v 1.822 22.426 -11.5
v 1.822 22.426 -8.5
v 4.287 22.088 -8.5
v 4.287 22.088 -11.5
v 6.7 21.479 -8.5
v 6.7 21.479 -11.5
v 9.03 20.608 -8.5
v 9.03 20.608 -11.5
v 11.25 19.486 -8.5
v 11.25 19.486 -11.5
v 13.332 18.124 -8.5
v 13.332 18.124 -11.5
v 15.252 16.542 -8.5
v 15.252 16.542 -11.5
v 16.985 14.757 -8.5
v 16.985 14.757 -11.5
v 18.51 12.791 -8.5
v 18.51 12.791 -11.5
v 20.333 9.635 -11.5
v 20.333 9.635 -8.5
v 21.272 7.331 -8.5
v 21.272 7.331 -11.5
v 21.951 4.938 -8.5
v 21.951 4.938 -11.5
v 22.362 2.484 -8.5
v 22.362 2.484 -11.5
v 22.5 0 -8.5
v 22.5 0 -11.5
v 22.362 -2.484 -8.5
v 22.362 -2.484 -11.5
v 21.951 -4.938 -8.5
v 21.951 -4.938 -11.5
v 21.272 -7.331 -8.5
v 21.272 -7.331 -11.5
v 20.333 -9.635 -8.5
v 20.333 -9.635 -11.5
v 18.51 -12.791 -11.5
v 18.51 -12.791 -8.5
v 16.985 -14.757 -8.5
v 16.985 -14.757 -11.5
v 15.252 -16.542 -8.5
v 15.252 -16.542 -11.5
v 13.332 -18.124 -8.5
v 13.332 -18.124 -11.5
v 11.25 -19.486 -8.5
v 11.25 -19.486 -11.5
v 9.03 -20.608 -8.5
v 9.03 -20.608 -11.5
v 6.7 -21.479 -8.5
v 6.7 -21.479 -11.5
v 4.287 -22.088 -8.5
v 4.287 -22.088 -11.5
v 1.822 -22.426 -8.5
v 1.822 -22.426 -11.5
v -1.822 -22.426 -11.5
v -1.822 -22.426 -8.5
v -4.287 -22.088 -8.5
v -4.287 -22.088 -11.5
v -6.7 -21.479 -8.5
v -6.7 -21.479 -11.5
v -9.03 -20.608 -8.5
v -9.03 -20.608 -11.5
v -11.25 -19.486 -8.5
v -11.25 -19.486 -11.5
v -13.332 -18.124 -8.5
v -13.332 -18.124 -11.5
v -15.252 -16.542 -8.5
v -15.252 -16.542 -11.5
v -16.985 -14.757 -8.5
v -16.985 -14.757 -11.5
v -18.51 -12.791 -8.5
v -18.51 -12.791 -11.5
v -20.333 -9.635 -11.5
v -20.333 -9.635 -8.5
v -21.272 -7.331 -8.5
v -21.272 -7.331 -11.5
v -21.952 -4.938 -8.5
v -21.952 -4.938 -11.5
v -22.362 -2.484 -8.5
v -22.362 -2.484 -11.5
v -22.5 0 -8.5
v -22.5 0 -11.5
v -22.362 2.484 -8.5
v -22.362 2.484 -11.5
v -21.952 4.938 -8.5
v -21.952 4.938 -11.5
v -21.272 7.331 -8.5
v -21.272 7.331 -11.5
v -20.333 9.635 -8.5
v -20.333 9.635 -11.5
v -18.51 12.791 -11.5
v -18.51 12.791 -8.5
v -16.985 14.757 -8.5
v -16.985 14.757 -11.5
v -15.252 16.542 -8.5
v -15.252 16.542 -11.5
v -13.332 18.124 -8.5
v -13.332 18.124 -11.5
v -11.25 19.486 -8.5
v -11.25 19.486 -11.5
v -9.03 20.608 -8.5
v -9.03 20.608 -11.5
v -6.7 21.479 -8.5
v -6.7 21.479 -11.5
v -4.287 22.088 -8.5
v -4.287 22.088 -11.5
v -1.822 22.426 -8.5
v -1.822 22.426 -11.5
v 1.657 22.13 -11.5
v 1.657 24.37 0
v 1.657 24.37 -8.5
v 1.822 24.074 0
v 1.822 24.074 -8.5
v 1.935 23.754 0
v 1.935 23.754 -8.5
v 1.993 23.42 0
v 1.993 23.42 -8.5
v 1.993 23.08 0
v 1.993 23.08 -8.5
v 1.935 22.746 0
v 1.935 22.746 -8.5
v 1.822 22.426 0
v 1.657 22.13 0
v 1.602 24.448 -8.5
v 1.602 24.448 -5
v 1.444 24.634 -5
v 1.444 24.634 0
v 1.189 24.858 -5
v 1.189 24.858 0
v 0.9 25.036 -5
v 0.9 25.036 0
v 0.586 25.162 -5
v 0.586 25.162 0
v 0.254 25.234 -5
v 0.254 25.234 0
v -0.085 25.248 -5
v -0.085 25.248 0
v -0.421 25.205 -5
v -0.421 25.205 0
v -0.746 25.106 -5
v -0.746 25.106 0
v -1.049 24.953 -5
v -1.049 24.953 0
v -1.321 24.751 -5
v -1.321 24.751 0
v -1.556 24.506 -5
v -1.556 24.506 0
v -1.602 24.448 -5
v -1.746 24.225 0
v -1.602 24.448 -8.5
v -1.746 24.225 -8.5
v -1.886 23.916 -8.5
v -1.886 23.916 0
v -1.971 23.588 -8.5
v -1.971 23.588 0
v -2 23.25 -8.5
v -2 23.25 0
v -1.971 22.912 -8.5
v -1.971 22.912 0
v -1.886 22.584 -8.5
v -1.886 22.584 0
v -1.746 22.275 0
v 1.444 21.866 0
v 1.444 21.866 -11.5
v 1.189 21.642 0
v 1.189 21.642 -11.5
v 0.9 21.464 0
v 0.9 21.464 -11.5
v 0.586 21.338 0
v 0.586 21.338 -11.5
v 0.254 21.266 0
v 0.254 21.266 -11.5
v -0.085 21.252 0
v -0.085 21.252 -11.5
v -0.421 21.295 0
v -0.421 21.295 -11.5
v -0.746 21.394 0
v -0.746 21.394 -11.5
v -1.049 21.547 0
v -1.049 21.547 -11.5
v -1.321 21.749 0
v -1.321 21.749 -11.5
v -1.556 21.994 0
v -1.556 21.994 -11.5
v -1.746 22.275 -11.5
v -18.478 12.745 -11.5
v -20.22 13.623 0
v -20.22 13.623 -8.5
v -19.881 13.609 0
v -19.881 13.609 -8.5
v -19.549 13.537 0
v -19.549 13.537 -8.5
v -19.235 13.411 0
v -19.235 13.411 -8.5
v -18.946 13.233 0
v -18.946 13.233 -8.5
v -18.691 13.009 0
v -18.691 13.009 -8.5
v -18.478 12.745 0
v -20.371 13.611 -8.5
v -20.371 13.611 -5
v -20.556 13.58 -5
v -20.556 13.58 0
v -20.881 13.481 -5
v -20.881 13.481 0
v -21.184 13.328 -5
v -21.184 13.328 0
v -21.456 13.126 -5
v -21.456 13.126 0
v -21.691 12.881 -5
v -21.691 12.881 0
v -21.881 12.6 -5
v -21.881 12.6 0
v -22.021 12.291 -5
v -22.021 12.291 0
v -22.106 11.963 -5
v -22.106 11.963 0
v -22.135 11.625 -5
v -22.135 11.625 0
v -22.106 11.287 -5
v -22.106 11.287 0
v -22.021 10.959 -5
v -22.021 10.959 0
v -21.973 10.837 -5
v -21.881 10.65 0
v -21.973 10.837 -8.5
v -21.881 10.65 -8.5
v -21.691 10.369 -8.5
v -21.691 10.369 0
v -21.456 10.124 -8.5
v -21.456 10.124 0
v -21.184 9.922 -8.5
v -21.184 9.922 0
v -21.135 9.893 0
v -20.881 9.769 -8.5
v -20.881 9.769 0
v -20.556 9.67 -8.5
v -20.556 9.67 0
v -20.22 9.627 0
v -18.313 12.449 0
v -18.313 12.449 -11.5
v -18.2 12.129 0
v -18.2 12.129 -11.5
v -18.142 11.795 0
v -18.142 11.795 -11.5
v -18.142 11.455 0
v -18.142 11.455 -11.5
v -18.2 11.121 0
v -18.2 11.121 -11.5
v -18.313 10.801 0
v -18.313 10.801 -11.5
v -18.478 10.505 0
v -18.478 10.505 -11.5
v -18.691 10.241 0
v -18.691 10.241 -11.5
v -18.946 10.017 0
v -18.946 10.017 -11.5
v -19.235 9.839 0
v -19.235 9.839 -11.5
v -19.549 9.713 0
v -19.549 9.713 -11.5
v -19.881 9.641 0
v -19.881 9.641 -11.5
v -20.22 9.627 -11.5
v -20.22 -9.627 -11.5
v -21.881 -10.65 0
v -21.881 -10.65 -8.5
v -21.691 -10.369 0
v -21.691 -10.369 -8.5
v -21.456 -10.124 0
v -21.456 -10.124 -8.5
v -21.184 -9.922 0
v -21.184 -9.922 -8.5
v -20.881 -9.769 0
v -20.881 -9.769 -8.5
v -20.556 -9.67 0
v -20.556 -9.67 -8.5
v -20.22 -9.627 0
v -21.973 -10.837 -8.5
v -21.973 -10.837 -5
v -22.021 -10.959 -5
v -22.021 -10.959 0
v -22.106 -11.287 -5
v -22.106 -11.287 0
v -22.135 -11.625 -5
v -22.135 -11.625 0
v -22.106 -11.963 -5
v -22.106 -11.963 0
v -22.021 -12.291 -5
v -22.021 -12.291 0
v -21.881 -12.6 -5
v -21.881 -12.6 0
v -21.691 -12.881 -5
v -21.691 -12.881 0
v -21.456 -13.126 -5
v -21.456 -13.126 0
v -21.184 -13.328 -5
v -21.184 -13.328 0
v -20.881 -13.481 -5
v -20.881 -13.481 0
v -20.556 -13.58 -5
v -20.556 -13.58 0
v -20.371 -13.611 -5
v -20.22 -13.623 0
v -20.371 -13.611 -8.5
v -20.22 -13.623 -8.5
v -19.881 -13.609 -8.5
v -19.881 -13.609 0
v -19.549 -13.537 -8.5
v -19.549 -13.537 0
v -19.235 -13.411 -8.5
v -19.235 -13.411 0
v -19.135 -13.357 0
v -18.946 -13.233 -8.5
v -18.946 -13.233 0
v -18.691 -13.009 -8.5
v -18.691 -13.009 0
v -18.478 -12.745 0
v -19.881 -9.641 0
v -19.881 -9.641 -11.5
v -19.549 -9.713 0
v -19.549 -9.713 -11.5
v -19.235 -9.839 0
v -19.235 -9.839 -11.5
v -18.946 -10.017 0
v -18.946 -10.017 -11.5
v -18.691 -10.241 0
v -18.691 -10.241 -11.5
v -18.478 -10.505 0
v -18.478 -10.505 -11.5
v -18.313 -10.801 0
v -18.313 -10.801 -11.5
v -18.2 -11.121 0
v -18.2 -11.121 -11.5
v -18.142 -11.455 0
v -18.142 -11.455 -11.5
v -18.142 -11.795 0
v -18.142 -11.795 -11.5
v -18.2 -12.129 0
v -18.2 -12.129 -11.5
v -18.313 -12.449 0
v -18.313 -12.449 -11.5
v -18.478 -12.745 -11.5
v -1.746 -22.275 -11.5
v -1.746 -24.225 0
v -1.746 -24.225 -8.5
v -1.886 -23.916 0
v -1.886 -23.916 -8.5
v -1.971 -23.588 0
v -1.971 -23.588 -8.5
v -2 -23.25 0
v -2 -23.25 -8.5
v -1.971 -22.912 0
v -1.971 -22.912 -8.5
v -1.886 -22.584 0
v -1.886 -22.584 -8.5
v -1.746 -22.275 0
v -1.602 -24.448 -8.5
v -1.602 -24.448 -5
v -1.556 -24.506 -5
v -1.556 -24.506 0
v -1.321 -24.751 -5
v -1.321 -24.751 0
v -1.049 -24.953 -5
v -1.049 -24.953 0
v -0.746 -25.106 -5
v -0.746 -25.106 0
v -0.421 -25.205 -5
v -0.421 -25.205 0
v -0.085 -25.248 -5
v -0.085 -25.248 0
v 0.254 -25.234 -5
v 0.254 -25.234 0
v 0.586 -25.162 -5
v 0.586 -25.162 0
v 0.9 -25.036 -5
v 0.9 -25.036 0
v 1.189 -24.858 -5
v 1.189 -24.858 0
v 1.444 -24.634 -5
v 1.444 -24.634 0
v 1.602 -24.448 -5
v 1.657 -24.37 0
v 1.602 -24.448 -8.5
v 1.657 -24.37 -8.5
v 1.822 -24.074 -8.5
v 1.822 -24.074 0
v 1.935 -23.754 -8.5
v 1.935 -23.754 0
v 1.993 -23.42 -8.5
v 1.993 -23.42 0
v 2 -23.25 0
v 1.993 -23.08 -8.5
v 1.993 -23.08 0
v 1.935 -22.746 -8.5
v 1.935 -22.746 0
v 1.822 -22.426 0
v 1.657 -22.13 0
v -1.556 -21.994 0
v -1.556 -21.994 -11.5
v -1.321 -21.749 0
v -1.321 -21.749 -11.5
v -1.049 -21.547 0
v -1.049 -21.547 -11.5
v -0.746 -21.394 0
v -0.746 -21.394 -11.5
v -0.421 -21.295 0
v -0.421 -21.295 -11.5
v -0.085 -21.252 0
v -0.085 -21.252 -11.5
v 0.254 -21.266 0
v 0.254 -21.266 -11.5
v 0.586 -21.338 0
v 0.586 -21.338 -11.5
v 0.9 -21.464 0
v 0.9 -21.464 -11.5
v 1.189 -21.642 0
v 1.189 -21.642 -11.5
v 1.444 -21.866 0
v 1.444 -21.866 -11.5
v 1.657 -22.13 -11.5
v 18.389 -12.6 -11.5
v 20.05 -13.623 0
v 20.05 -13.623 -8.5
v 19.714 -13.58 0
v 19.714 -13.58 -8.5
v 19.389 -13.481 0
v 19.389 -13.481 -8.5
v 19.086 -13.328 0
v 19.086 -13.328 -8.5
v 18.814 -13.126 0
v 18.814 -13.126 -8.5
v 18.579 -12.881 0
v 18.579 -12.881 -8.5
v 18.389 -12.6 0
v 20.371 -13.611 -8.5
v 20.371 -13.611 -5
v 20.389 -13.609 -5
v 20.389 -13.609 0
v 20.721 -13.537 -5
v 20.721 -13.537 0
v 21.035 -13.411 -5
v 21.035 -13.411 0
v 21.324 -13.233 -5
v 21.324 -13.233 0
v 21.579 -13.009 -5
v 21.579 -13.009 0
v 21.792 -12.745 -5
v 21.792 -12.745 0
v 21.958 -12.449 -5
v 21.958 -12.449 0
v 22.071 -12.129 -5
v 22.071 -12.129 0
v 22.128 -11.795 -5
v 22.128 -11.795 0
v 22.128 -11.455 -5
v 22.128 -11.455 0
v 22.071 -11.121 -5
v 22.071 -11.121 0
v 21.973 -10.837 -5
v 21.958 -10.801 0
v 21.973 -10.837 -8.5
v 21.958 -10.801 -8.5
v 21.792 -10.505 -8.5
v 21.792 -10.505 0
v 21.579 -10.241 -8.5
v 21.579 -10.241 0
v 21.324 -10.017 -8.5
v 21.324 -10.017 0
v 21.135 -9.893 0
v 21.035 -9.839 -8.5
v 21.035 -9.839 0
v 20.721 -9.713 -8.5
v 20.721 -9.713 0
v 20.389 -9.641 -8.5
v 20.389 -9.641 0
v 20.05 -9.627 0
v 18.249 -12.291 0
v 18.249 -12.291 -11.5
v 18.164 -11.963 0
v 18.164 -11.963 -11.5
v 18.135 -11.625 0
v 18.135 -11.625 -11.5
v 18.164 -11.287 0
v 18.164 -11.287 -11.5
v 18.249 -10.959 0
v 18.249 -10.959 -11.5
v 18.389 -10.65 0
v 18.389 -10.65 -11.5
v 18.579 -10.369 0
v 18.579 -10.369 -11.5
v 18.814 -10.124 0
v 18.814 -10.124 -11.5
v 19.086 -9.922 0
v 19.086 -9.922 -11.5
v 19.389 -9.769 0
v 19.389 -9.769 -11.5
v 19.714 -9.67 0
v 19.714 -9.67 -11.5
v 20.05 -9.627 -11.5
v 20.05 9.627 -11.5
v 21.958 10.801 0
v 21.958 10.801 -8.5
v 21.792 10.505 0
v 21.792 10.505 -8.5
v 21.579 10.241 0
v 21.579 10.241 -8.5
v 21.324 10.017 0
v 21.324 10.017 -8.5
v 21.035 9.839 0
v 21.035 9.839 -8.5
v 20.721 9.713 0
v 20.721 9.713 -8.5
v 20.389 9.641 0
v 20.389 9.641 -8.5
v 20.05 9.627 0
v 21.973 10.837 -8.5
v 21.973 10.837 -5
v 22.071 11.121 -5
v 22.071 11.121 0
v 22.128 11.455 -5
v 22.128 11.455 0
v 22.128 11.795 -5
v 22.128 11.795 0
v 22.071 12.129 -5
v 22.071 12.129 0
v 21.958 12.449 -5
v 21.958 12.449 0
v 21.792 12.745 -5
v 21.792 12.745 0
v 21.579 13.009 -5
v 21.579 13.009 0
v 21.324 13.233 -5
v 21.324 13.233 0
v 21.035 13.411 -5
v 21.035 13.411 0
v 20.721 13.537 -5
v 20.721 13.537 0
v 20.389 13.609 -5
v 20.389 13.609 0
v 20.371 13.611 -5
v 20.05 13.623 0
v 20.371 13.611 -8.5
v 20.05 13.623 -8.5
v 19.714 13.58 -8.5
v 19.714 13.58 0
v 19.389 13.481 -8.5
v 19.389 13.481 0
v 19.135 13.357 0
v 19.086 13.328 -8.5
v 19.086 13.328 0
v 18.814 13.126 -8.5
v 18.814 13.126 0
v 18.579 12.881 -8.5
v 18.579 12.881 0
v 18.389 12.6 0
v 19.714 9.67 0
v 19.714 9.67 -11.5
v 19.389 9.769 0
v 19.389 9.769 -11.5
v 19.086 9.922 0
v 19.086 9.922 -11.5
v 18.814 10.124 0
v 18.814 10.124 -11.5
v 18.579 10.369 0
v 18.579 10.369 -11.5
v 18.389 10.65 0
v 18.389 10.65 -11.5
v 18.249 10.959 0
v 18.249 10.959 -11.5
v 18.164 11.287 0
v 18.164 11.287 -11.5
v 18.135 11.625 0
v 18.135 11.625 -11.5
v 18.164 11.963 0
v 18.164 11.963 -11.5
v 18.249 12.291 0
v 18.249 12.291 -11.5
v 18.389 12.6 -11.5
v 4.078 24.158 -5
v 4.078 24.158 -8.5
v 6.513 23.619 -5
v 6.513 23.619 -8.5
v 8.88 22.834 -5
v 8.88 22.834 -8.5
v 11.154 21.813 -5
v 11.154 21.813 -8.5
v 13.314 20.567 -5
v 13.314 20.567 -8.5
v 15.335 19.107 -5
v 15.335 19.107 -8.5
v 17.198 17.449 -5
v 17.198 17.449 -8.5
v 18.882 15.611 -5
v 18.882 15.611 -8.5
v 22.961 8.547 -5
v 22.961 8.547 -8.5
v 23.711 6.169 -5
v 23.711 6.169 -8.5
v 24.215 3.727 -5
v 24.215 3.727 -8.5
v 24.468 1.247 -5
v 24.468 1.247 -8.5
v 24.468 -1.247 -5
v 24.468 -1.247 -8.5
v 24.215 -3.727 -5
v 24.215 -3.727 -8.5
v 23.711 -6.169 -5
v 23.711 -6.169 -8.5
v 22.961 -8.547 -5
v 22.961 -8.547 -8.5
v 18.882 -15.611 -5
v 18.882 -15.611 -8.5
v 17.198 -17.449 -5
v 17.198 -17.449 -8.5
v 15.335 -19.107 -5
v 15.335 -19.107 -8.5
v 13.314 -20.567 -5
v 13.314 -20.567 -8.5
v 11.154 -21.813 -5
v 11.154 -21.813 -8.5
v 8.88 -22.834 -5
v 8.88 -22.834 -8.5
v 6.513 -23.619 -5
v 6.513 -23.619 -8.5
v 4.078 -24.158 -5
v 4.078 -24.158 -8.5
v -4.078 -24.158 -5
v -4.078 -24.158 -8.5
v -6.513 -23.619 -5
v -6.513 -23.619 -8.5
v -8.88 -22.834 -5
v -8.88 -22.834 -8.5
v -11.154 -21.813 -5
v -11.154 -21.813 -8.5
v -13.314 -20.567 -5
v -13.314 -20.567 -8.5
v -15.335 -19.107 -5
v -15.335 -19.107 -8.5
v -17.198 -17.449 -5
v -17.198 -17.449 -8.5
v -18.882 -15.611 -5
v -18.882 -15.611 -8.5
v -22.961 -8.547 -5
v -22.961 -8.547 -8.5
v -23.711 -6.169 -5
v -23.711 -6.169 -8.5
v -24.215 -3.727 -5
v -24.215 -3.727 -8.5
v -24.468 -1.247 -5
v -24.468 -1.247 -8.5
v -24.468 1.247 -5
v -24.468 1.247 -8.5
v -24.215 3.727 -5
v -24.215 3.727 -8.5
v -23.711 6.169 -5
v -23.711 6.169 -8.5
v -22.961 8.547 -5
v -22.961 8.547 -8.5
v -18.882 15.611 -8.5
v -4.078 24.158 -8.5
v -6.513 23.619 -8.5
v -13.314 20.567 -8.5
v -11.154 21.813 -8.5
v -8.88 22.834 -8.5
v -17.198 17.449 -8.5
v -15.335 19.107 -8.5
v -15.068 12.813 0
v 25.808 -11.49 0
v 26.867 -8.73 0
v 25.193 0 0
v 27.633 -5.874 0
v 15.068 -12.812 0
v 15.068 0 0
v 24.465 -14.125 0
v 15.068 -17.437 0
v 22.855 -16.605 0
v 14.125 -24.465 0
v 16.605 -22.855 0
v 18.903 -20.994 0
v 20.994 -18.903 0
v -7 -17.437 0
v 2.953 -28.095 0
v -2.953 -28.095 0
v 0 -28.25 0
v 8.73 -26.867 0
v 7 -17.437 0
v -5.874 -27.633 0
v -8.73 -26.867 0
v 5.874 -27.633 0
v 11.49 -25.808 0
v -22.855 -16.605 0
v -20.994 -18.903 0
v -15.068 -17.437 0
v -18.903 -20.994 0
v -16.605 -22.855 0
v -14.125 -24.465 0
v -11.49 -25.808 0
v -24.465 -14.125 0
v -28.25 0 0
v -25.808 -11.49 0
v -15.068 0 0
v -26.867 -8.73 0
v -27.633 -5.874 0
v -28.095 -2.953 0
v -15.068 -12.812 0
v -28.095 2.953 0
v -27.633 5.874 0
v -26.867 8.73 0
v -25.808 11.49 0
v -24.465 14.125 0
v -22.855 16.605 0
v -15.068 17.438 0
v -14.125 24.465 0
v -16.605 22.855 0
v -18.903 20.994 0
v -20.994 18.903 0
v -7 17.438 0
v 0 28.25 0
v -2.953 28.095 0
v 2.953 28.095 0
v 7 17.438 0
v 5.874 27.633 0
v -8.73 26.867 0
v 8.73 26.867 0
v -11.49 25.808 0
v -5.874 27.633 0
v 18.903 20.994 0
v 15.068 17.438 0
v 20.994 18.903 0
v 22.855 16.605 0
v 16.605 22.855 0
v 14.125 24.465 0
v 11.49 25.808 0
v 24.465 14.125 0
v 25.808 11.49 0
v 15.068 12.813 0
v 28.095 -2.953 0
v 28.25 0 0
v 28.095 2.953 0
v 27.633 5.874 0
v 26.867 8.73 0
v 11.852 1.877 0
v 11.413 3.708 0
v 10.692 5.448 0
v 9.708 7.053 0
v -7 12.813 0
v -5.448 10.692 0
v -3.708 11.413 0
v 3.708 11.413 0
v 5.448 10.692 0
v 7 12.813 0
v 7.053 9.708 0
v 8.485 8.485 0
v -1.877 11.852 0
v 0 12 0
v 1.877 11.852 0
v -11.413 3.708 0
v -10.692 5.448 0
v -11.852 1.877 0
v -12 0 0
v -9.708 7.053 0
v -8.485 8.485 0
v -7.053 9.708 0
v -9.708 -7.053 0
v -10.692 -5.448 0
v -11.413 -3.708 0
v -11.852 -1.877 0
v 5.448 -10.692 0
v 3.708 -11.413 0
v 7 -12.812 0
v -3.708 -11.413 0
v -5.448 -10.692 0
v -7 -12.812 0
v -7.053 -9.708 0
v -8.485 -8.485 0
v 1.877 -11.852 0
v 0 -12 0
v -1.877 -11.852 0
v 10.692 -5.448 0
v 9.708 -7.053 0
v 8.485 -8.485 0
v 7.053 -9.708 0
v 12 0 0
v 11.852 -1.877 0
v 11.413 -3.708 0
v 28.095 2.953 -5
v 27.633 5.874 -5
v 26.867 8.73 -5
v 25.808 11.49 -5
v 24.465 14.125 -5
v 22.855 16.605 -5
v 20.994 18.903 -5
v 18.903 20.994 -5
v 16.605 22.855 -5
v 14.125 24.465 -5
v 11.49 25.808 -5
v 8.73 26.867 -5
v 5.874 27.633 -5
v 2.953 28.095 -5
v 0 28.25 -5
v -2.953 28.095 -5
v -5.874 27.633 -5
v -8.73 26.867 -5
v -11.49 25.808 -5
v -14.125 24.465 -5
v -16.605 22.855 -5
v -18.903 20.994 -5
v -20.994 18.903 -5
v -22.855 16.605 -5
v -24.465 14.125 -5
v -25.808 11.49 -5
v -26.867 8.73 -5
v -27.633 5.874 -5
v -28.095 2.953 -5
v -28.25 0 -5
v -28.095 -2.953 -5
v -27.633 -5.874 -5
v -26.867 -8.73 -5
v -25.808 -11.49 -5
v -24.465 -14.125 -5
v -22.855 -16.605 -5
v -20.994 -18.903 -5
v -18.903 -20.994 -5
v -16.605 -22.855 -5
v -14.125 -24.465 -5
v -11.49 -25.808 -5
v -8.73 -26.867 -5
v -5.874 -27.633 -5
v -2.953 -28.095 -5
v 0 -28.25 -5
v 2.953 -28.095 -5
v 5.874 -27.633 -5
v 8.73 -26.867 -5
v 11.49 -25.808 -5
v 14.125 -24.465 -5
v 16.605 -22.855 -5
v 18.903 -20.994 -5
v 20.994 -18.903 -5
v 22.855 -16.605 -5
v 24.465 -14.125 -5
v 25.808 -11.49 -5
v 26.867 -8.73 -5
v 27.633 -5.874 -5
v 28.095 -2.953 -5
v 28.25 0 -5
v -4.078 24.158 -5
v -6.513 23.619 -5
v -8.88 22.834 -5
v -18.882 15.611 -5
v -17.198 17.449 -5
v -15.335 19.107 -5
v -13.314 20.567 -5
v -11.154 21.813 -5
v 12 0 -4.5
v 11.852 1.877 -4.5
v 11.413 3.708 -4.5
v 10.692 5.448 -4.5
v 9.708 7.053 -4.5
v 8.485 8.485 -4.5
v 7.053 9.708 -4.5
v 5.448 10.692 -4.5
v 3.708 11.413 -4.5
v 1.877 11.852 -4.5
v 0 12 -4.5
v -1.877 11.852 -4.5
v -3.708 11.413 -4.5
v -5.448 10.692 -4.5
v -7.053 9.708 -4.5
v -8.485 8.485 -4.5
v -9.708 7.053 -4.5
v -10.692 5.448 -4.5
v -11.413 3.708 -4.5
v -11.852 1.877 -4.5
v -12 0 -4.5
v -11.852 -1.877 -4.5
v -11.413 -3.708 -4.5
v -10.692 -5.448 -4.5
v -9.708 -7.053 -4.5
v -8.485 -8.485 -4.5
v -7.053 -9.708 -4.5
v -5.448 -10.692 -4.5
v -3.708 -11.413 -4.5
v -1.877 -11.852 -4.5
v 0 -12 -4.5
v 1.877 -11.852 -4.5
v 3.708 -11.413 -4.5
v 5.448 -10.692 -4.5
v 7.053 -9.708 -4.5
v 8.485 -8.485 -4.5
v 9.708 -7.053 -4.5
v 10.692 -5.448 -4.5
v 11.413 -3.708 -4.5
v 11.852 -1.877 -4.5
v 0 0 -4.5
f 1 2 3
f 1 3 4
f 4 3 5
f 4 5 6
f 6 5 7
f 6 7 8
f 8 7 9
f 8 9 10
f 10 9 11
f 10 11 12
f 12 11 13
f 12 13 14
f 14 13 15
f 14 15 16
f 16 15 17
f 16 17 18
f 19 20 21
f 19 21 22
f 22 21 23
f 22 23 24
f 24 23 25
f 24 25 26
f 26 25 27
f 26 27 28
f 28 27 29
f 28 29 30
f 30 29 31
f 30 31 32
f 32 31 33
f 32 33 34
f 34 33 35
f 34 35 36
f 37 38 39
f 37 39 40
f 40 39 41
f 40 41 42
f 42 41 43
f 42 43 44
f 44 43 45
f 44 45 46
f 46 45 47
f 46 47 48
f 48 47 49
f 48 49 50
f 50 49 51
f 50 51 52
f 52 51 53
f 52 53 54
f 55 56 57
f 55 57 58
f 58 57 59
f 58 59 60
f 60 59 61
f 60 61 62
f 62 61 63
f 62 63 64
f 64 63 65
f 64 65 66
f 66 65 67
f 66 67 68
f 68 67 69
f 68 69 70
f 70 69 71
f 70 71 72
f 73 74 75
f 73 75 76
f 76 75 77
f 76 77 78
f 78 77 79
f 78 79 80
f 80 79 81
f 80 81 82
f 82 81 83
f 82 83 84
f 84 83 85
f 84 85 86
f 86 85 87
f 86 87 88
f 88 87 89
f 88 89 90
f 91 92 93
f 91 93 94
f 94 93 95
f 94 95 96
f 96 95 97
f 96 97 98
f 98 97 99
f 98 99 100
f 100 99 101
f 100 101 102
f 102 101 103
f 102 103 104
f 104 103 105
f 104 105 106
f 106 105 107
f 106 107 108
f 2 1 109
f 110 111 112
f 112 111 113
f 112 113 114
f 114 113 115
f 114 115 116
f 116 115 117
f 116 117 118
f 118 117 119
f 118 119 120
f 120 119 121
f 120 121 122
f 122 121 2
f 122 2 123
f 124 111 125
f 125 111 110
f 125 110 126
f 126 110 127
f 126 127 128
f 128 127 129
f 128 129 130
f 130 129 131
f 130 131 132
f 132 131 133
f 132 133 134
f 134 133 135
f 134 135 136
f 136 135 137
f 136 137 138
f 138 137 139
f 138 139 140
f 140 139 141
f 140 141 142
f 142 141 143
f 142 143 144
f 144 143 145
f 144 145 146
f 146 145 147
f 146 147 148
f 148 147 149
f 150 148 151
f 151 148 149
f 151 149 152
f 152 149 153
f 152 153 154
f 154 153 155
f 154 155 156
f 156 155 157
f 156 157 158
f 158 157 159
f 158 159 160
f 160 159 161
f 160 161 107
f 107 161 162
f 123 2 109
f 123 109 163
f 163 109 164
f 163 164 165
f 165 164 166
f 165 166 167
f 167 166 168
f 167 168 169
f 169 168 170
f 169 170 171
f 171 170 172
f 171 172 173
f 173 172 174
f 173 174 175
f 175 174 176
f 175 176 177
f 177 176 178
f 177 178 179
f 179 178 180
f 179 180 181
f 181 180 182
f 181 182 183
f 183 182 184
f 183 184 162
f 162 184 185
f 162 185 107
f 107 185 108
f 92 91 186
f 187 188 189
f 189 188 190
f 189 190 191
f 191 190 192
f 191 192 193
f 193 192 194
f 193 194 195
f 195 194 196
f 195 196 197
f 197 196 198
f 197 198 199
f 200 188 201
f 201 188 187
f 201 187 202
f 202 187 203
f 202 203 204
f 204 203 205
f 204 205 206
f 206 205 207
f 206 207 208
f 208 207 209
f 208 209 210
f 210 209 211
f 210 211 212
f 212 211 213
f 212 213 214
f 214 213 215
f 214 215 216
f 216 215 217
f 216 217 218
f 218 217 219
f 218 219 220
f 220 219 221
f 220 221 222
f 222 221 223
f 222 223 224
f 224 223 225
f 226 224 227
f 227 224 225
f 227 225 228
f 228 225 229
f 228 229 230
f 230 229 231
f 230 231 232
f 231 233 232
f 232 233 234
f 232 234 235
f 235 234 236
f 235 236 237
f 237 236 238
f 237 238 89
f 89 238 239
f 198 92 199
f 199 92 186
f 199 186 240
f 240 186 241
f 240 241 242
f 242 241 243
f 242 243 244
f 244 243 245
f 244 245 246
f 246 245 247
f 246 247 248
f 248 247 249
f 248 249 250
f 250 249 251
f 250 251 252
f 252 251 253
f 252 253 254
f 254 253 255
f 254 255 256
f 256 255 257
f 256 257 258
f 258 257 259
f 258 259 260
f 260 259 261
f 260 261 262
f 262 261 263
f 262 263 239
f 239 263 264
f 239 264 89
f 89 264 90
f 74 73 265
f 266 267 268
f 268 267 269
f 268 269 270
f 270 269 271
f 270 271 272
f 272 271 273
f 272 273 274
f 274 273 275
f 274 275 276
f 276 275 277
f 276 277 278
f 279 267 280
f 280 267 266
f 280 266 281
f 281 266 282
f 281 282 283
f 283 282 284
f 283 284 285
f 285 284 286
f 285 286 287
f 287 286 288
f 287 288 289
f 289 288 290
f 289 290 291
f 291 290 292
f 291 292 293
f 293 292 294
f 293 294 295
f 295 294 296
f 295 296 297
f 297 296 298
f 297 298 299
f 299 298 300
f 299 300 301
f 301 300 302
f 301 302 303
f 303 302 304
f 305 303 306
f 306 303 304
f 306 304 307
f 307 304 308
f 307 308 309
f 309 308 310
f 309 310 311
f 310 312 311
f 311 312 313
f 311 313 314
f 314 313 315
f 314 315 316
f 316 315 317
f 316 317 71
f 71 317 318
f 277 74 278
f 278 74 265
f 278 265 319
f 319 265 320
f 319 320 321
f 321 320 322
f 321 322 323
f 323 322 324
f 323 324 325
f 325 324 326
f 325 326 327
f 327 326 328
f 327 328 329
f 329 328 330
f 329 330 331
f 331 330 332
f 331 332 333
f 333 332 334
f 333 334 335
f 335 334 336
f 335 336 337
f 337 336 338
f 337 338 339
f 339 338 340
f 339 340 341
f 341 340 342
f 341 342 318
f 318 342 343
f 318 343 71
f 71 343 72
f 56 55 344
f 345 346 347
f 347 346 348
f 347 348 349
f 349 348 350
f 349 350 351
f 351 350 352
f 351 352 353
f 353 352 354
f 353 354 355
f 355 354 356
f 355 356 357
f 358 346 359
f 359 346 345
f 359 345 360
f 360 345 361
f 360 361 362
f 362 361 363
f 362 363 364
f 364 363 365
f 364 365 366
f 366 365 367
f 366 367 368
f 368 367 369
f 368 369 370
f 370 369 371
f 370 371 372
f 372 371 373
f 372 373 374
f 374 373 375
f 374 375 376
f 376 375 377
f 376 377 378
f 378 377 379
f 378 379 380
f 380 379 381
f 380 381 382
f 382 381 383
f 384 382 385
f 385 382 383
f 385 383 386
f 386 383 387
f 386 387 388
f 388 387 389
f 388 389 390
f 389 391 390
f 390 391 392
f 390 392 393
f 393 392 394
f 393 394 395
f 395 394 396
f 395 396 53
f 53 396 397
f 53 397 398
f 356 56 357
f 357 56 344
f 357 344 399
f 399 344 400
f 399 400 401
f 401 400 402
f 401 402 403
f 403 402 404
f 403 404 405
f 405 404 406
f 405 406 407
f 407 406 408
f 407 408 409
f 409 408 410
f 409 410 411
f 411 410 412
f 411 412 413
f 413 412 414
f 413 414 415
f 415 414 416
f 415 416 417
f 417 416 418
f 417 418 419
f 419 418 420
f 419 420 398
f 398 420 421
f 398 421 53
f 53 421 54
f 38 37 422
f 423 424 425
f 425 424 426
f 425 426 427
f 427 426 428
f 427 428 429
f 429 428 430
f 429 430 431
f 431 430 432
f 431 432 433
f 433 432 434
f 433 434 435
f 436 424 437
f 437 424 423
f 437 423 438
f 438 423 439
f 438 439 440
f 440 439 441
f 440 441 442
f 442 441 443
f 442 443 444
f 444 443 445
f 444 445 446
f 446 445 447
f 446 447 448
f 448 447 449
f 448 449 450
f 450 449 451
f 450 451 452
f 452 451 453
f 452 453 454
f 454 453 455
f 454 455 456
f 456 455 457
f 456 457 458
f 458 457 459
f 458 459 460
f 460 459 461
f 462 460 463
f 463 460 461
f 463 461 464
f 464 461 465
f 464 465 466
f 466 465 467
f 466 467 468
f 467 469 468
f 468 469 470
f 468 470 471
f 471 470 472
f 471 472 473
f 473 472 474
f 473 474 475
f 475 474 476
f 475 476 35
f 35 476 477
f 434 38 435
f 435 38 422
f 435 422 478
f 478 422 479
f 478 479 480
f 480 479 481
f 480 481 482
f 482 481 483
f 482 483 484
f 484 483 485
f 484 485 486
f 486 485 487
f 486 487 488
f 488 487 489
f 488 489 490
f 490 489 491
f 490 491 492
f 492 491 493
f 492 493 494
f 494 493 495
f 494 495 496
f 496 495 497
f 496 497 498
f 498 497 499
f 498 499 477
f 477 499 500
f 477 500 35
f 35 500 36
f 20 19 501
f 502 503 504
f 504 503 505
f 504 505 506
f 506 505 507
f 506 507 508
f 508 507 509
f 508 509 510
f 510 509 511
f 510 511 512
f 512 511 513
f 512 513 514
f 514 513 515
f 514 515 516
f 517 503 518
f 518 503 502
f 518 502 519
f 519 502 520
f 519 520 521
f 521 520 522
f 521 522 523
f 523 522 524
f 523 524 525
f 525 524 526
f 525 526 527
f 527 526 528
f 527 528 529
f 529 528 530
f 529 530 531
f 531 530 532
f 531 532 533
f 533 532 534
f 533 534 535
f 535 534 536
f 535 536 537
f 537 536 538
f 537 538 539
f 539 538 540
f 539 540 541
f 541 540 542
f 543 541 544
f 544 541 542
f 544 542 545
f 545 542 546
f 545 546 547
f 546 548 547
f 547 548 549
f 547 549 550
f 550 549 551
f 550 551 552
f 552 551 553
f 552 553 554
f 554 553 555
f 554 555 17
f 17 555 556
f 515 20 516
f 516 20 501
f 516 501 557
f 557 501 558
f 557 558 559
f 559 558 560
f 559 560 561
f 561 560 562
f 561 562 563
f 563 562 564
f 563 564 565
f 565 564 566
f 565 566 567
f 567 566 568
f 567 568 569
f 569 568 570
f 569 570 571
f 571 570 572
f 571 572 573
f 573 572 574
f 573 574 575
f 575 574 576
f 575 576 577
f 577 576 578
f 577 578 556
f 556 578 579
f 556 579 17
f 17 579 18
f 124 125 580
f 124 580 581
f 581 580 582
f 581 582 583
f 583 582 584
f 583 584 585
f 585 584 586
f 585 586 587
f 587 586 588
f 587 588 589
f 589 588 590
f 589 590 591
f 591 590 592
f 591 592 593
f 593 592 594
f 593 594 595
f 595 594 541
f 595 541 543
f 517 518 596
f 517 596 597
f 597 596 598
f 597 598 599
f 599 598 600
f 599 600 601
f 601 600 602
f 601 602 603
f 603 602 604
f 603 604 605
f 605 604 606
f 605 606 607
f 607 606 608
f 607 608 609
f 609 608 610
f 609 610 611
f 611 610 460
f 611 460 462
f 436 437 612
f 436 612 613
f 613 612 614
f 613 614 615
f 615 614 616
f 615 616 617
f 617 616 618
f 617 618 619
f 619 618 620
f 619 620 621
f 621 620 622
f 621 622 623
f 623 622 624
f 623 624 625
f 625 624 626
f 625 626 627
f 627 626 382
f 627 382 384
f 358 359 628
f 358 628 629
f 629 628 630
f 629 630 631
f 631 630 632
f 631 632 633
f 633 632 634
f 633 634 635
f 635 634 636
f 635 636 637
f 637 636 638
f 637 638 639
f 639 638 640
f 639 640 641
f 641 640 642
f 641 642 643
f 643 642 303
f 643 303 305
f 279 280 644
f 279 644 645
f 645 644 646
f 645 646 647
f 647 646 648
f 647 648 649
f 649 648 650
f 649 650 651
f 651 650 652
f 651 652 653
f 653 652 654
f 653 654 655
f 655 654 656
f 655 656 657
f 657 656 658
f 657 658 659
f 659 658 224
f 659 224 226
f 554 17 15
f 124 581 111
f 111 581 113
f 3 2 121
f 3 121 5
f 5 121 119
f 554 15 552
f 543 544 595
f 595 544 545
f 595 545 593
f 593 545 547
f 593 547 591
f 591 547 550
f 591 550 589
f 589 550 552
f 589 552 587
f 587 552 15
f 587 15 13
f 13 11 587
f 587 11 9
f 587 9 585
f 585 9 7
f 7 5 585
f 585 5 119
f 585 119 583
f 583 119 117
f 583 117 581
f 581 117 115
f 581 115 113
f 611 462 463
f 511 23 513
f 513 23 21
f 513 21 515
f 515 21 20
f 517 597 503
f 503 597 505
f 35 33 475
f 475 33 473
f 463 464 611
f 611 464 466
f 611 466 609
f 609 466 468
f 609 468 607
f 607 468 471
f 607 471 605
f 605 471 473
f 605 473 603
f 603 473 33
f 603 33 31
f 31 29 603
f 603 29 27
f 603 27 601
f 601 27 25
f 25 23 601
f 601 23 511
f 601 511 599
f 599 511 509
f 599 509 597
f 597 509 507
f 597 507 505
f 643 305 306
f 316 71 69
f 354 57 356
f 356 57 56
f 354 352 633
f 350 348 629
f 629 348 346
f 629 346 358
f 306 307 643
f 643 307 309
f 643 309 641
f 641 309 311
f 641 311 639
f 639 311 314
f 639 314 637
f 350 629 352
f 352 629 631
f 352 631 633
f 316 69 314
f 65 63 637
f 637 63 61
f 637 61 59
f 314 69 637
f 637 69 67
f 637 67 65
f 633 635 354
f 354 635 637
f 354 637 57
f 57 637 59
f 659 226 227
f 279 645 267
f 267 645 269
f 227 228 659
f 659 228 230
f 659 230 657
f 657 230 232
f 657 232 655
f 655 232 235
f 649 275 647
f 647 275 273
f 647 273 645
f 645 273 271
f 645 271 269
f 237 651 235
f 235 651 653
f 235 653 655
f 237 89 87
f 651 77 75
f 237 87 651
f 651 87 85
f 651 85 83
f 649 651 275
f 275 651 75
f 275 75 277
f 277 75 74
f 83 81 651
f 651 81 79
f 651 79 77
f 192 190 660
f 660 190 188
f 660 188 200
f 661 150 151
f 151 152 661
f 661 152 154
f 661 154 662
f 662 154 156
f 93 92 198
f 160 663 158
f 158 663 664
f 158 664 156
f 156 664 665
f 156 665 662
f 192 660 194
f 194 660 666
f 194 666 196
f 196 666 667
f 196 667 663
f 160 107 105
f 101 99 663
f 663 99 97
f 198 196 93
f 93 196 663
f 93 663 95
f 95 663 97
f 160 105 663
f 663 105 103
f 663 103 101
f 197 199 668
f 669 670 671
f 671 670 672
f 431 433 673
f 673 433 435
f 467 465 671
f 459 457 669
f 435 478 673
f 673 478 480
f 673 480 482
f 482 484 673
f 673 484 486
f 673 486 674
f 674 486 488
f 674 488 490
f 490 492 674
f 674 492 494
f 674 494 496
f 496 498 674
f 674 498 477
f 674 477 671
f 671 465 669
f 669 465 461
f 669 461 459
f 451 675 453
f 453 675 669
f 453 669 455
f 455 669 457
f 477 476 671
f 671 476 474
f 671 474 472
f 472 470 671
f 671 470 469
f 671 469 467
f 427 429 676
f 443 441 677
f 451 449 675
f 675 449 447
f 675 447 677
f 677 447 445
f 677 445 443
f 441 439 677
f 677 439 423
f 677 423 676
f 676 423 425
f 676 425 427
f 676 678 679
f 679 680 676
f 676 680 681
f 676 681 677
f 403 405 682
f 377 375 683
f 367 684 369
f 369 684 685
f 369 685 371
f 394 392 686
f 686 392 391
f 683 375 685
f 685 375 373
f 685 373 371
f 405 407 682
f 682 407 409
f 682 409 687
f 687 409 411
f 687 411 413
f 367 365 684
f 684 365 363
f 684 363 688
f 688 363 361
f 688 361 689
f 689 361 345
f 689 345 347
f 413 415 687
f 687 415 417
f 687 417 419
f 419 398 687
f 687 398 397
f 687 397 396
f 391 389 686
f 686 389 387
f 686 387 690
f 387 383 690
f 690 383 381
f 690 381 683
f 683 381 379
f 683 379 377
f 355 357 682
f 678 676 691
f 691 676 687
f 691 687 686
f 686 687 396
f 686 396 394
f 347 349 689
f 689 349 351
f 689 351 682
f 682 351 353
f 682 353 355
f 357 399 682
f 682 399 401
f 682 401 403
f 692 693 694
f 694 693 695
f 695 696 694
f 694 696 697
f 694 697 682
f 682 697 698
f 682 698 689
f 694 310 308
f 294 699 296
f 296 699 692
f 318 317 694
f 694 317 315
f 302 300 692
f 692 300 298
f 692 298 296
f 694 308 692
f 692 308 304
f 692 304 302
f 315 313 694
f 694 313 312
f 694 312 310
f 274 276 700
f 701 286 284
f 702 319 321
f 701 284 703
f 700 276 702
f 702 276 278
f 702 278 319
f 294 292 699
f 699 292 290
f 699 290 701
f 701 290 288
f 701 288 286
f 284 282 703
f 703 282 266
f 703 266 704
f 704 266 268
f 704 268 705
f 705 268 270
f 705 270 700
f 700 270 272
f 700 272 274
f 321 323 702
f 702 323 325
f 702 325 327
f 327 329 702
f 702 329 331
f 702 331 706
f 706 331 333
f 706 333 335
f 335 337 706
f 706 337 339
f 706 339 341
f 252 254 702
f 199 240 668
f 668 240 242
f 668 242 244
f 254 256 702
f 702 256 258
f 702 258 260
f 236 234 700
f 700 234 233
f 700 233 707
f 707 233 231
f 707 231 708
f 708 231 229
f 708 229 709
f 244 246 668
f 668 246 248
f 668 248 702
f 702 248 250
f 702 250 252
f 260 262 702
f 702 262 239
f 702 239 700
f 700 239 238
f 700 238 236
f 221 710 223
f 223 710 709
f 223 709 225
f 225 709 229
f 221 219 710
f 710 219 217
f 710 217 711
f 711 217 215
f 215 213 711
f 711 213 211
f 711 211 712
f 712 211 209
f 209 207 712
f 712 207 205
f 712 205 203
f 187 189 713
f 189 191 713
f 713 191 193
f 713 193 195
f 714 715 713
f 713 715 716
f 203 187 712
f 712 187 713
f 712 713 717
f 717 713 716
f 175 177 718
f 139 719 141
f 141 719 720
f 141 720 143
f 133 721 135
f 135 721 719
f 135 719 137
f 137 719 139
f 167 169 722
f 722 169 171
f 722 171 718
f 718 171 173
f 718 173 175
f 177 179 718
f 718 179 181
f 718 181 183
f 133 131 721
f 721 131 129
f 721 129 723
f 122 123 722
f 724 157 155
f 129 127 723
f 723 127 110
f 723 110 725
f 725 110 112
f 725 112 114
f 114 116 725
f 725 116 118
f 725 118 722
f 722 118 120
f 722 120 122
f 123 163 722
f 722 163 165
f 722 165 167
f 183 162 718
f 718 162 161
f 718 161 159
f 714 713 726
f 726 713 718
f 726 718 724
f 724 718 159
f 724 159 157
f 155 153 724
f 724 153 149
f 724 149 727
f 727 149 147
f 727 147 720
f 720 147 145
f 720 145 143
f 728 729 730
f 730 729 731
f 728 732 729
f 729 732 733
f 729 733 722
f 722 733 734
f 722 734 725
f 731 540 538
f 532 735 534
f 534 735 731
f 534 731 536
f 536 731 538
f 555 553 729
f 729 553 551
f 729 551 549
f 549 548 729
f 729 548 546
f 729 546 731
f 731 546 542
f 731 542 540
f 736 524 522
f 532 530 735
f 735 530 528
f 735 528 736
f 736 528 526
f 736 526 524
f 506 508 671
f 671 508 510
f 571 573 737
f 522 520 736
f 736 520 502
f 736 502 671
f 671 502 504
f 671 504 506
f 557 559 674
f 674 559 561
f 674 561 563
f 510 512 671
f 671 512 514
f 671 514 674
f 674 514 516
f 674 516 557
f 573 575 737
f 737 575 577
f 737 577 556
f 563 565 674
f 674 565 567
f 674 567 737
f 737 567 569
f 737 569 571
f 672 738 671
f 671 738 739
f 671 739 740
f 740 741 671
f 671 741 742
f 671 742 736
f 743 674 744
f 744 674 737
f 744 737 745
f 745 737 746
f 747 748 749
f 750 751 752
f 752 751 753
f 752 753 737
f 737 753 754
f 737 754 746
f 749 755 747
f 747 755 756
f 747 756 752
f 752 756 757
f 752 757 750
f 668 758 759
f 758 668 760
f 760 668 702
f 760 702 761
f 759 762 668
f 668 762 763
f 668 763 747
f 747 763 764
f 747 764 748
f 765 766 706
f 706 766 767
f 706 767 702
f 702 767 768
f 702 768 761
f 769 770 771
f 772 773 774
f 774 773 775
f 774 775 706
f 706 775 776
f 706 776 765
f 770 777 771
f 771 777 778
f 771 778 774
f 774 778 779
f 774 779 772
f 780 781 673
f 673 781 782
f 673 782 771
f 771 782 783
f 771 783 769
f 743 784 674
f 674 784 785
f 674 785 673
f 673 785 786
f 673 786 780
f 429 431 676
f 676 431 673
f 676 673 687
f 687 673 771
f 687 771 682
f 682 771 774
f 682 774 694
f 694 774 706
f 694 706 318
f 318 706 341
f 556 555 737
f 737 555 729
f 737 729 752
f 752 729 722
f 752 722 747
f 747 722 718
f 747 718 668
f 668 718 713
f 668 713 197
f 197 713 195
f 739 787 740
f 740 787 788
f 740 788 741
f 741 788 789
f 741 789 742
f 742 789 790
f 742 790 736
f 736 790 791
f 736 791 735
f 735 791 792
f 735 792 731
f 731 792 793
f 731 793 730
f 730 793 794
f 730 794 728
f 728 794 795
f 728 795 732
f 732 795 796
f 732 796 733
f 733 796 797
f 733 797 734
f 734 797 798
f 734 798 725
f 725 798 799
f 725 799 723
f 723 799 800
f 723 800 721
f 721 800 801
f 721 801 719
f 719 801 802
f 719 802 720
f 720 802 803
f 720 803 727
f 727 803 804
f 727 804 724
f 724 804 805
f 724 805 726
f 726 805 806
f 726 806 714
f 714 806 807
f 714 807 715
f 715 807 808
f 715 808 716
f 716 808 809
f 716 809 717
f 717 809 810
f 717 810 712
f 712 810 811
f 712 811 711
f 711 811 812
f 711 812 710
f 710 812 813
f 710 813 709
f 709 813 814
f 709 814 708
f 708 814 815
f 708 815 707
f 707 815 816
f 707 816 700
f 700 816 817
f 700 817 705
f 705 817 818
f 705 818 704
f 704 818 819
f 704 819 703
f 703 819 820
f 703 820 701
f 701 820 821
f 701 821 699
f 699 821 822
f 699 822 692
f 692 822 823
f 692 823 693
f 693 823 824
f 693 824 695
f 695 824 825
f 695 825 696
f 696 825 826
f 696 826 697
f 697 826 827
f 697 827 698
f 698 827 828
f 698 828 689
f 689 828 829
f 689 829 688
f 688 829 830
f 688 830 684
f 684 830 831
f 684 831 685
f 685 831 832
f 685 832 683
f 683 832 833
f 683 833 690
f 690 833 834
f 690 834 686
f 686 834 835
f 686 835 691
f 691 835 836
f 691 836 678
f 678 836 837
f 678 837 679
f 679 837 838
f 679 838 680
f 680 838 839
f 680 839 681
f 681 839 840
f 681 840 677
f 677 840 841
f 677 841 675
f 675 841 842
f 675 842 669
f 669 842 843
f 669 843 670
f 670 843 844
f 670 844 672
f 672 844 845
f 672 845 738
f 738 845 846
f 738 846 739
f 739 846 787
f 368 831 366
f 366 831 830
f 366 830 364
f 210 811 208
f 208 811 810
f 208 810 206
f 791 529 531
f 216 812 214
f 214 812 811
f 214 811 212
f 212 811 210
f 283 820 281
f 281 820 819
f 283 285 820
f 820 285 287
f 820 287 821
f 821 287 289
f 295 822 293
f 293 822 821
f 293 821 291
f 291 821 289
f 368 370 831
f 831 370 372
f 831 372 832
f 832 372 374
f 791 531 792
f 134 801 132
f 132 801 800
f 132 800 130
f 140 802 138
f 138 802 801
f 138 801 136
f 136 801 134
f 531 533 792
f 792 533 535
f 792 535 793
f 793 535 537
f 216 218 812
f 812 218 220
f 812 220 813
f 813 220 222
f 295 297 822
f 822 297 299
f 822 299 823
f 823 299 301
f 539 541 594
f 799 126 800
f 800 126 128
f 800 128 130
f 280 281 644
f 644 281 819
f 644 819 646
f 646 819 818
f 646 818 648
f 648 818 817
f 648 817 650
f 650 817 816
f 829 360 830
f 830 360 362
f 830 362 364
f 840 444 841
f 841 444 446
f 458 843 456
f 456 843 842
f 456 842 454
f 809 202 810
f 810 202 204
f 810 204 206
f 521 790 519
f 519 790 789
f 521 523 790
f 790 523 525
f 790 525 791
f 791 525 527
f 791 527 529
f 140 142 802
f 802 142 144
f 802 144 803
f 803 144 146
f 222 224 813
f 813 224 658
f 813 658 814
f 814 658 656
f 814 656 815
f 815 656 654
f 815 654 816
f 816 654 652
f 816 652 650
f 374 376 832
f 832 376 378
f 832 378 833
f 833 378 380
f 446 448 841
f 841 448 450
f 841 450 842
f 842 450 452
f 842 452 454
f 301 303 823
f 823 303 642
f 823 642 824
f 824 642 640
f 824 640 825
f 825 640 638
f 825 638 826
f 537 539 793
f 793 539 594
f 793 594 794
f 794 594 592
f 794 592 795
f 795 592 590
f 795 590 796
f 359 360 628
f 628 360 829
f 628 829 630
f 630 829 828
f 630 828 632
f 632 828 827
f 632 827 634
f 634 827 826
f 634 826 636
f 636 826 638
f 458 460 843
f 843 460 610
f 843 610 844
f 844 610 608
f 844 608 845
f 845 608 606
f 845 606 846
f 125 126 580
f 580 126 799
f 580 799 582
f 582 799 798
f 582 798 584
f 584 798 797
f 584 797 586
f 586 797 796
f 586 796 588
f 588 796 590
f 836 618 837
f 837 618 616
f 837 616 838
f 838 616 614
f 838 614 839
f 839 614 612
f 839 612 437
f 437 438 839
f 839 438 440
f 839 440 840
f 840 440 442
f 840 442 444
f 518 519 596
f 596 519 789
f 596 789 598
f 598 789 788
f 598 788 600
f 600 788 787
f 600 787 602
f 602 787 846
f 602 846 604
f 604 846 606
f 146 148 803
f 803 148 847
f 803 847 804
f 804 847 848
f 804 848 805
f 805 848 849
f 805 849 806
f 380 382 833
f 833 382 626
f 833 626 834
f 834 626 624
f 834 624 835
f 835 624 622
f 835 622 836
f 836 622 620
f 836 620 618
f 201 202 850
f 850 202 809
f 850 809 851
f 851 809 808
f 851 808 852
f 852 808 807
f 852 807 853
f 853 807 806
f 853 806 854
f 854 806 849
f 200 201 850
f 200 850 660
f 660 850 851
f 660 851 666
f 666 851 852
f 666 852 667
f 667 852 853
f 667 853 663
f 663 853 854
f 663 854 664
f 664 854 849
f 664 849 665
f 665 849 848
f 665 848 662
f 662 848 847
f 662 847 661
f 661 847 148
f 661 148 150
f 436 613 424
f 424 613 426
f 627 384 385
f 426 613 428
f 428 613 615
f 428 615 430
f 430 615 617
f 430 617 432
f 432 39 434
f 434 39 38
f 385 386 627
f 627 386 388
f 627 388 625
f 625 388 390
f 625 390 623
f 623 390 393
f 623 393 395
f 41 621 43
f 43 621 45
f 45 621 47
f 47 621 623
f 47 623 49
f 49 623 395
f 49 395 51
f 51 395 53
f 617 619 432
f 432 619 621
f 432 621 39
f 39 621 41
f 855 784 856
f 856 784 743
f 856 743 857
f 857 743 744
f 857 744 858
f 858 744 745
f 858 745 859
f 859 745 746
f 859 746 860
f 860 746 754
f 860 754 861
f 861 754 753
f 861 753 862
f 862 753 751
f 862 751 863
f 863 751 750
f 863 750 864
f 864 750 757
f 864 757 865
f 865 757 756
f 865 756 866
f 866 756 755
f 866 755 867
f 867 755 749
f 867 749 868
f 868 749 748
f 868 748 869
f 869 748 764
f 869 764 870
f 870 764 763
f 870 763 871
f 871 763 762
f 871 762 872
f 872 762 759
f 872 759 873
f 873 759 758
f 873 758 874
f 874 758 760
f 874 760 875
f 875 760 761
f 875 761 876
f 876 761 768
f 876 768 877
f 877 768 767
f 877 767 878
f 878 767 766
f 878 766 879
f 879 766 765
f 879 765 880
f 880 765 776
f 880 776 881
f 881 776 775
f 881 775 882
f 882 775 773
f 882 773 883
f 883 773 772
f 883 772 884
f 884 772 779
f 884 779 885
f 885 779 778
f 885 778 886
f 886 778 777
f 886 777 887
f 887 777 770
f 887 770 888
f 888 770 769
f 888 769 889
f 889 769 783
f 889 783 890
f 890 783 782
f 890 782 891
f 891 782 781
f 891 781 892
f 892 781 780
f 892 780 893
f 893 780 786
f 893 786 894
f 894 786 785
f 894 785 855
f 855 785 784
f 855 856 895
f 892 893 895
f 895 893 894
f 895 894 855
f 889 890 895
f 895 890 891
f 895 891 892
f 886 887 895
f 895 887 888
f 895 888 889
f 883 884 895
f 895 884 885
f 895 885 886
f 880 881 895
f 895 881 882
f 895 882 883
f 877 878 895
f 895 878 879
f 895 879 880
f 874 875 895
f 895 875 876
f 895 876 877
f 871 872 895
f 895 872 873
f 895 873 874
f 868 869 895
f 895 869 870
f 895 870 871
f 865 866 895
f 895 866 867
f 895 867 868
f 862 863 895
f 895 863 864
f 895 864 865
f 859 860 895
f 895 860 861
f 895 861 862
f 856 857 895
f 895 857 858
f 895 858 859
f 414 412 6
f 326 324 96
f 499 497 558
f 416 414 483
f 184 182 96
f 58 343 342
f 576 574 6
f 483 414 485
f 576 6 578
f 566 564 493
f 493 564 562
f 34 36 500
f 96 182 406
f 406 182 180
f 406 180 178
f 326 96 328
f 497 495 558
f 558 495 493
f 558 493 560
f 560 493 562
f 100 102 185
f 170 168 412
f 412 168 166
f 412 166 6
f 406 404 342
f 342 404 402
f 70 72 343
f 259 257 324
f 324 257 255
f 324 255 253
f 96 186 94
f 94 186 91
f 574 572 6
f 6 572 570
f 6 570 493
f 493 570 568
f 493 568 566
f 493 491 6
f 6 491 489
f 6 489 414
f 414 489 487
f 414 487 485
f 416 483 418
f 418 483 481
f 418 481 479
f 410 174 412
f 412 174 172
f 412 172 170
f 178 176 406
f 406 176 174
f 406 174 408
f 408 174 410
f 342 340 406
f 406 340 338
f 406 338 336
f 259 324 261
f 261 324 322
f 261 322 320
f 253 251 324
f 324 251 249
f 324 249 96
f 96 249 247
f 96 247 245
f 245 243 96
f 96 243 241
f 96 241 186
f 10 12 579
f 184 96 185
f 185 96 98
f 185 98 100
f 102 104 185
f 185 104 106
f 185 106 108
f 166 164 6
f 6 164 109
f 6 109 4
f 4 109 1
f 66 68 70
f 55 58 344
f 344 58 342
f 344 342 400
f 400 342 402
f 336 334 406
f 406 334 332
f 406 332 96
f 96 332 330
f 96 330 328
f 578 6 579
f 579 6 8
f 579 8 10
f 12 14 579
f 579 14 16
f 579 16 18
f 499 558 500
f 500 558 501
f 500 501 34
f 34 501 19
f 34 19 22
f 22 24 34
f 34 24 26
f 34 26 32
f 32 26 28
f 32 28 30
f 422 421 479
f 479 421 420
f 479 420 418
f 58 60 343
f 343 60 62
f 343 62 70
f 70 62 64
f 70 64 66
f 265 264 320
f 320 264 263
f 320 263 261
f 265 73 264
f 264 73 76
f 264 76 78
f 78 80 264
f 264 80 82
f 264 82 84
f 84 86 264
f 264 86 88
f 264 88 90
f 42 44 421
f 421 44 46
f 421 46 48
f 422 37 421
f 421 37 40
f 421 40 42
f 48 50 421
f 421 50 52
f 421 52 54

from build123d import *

# Parameters (mm, degrees)
SKETCH2_R          = 2
CUT_EXTRUDE1_DEPTH = 46.369317826
CIRPATTERN1_COUNT  = 6
SKETCH5_OUTSIDE_W  = 75.336
SKETCH5_OUTSIDE_H  = 75.336
SKETCH5_OUTSIDE_R  = 2
CUT_EXTRUDE2_DEPTH = 10
CIRPATTERN2_COUNT  = 6
SKETCH6_R          = 12
CUT_EXTRUDE3_DEPTH = 4.5
CUT_EXTRUDE4_DEPTH = 15


with BuildPart() as part:
    # Sketch1 → Revolve1 (revolve)
    with BuildSketch(Plane(origin=(0, 0, 0), x_dir=(0, 0, -1), z_dir=(1, 0, 0)), mode=Mode.PRIVATE) as revolve1_sk:
        Polygon((0, 0), (0, 28.25), (5, 28.25), (5, 24.5), (8.5, 24.5), (8.5, 22.5), (26.5, 22.5), (26.5, 0), align=None)
    revolve(revolve1_sk.sketch.rotate(Axis((0, 0, 0), (0, 0, -1)), 90), axis=Axis((0, 0, 0), (0, 0, -1)))

    # Sketch2 → Cut-Extrude1 (cut, symmetric)
    with BuildSketch(Plane(origin=(0, 0, -5), x_dir=(-1, 0, 0), z_dir=(0, 0, -1))):
        with Locations((0, 23.25)):
            Circle(SKETCH2_R)
    cut_extrude1 = extrude(amount=CUT_EXTRUDE1_DEPTH, both=True, mode=Mode.SUBTRACT)

    # CirPattern1: Cut-Extrude1 ×6 about axis
    cirpattern1_axis = Axis((0, 0, 0), (0, 0, 1))
    for i in range(1, CIRPATTERN1_COUNT):
        add(cut_extrude1.rotate(cirpattern1_axis, i * 360 / CIRPATTERN1_COUNT), mode=Mode.SUBTRACT)

    # Sketch5 outside → Cut-Extrude2 (cut)
    # profile 1 of 2: a face of its own
    with BuildSketch(Plane(origin=(0, 0, -26.5), x_dir=(-1, 0, 0), z_dir=(0, 0, -1))):
        Rectangle(SKETCH5_OUTSIDE_W, SKETCH5_OUTSIDE_H)
        with BuildLine():
            ThreePointArc((-1.822401722, 22.426075269), (-11.25, 19.485571585), (-18.510350029, 12.791283822))
            ThreePointArc((-18.510350029, 12.791283822), (-18.40303983, 10.625), (-20.332751751, 9.634791447))
            ThreePointArc((-20.332751751, 9.634791447), (-22.5, 0), (-20.332751751, -9.634791447))
            ThreePointArc((-20.332751751, -9.634791447), (-18.40303983, -10.625), (-18.510350029, -12.791283822))
            ThreePointArc((-18.510350029, -12.791283822), (-11.25, -19.485571585), (-1.822401722, -22.426075269))
            ThreePointArc((-1.822401722, -22.426075269), (0, -21.25), (1.822401722, -22.426075269))
            ThreePointArc((1.822401722, -22.426075269), (11.25, -19.485571585), (18.510350029, -12.791283822))
            ThreePointArc((18.510350029, -12.791283822), (18.40303983, -10.625), (20.332751751, -9.634791447))
            ThreePointArc((20.332751751, -9.634791447), (22.5, 0), (20.332751751, 9.634791447))
            ThreePointArc((20.332751751, 9.634791447), (18.40303983, 10.625), (18.510350029, 12.791283822))
            ThreePointArc((18.510350029, 12.791283822), (11.25, 19.485571585), (1.822401722, 22.426075269))
            ThreePointArc((1.822401722, 22.426075269), (0, 21.25), (-1.822401722, 22.426075269))
        make_face(mode=Mode.SUBTRACT)
    # profile 2 of 2: a face of its own
    with BuildSketch(Plane(origin=(0, 0, -26.5), x_dir=(-1, 0, 0), z_dir=(0, 0, -1))):
        with Locations((0, 17.5)):
            Circle(SKETCH5_OUTSIDE_R)
    cut_extrude2 = extrude(amount=-CUT_EXTRUDE2_DEPTH, mode=Mode.SUBTRACT)

    # CirPattern2: Cut-Extrude2 ×6 about axis
    cirpattern2_axis = Axis((0, 0, 0), (0, 0, 1))
    for i in range(1, CIRPATTERN2_COUNT):
        add(cut_extrude2.rotate(cirpattern2_axis, i * 360 / CIRPATTERN2_COUNT), mode=Mode.SUBTRACT)

    # Sketch6 → Cut-Extrude3 (cut)
    with BuildSketch(Plane.XY):
        Circle(SKETCH6_R)
    extrude(amount=-CUT_EXTRUDE3_DEPTH, mode=Mode.SUBTRACT)

    # Sketch7 → Cut-Extrude4 (cut)
    with BuildSketch(Plane(origin=(0, 0, -26.5), x_dir=(-1, 0, 0), z_dir=(0, 0, -1))):
        with BuildLine():
            ThreePointArc((-1.822401722, 22.426075269), (-11.25, 19.485571585), (-18.510350029, 12.791283822))
            ThreePointArc((-18.510350029, 12.791283822), (-18.40303983, 10.625), (-20.332751751, 9.634791447))
            ThreePointArc((-20.332751751, 9.634791447), (-22.5, 0), (-20.332751751, -9.634791447))
            ThreePointArc((-20.332751751, -9.634791447), (-18.40303983, -10.625), (-18.510350029, -12.791283822))
            ThreePointArc((-18.510350029, -12.791283822), (-11.25, -19.485571585), (-1.822401722, -22.426075269))
            ThreePointArc((-1.822401722, -22.426075269), (0, -21.25), (1.822401722, -22.426075269))
            ThreePointArc((1.822401722, -22.426075269), (11.25, -19.485571585), (18.510350029, -12.791283822))
            ThreePointArc((18.510350029, -12.791283822), (18.40303983, -10.625), (20.332751751, -9.634791447))
            ThreePointArc((20.332751751, -9.634791447), (22.5, 0), (20.332751751, 9.634791447))
            ThreePointArc((20.332751751, 9.634791447), (18.40303983, 10.625), (18.510350029, 12.791283822))
            ThreePointArc((18.510350029, 12.791283822), (11.25, 19.485571585), (1.822401722, 22.426075269))
            ThreePointArc((1.822401722, 22.426075269), (0, 21.25), (-1.822401722, 22.426075269))
        make_face()
    extrude(amount=-CUT_EXTRUDE4_DEPTH, mode=Mode.SUBTRACT)


solid = part.part
